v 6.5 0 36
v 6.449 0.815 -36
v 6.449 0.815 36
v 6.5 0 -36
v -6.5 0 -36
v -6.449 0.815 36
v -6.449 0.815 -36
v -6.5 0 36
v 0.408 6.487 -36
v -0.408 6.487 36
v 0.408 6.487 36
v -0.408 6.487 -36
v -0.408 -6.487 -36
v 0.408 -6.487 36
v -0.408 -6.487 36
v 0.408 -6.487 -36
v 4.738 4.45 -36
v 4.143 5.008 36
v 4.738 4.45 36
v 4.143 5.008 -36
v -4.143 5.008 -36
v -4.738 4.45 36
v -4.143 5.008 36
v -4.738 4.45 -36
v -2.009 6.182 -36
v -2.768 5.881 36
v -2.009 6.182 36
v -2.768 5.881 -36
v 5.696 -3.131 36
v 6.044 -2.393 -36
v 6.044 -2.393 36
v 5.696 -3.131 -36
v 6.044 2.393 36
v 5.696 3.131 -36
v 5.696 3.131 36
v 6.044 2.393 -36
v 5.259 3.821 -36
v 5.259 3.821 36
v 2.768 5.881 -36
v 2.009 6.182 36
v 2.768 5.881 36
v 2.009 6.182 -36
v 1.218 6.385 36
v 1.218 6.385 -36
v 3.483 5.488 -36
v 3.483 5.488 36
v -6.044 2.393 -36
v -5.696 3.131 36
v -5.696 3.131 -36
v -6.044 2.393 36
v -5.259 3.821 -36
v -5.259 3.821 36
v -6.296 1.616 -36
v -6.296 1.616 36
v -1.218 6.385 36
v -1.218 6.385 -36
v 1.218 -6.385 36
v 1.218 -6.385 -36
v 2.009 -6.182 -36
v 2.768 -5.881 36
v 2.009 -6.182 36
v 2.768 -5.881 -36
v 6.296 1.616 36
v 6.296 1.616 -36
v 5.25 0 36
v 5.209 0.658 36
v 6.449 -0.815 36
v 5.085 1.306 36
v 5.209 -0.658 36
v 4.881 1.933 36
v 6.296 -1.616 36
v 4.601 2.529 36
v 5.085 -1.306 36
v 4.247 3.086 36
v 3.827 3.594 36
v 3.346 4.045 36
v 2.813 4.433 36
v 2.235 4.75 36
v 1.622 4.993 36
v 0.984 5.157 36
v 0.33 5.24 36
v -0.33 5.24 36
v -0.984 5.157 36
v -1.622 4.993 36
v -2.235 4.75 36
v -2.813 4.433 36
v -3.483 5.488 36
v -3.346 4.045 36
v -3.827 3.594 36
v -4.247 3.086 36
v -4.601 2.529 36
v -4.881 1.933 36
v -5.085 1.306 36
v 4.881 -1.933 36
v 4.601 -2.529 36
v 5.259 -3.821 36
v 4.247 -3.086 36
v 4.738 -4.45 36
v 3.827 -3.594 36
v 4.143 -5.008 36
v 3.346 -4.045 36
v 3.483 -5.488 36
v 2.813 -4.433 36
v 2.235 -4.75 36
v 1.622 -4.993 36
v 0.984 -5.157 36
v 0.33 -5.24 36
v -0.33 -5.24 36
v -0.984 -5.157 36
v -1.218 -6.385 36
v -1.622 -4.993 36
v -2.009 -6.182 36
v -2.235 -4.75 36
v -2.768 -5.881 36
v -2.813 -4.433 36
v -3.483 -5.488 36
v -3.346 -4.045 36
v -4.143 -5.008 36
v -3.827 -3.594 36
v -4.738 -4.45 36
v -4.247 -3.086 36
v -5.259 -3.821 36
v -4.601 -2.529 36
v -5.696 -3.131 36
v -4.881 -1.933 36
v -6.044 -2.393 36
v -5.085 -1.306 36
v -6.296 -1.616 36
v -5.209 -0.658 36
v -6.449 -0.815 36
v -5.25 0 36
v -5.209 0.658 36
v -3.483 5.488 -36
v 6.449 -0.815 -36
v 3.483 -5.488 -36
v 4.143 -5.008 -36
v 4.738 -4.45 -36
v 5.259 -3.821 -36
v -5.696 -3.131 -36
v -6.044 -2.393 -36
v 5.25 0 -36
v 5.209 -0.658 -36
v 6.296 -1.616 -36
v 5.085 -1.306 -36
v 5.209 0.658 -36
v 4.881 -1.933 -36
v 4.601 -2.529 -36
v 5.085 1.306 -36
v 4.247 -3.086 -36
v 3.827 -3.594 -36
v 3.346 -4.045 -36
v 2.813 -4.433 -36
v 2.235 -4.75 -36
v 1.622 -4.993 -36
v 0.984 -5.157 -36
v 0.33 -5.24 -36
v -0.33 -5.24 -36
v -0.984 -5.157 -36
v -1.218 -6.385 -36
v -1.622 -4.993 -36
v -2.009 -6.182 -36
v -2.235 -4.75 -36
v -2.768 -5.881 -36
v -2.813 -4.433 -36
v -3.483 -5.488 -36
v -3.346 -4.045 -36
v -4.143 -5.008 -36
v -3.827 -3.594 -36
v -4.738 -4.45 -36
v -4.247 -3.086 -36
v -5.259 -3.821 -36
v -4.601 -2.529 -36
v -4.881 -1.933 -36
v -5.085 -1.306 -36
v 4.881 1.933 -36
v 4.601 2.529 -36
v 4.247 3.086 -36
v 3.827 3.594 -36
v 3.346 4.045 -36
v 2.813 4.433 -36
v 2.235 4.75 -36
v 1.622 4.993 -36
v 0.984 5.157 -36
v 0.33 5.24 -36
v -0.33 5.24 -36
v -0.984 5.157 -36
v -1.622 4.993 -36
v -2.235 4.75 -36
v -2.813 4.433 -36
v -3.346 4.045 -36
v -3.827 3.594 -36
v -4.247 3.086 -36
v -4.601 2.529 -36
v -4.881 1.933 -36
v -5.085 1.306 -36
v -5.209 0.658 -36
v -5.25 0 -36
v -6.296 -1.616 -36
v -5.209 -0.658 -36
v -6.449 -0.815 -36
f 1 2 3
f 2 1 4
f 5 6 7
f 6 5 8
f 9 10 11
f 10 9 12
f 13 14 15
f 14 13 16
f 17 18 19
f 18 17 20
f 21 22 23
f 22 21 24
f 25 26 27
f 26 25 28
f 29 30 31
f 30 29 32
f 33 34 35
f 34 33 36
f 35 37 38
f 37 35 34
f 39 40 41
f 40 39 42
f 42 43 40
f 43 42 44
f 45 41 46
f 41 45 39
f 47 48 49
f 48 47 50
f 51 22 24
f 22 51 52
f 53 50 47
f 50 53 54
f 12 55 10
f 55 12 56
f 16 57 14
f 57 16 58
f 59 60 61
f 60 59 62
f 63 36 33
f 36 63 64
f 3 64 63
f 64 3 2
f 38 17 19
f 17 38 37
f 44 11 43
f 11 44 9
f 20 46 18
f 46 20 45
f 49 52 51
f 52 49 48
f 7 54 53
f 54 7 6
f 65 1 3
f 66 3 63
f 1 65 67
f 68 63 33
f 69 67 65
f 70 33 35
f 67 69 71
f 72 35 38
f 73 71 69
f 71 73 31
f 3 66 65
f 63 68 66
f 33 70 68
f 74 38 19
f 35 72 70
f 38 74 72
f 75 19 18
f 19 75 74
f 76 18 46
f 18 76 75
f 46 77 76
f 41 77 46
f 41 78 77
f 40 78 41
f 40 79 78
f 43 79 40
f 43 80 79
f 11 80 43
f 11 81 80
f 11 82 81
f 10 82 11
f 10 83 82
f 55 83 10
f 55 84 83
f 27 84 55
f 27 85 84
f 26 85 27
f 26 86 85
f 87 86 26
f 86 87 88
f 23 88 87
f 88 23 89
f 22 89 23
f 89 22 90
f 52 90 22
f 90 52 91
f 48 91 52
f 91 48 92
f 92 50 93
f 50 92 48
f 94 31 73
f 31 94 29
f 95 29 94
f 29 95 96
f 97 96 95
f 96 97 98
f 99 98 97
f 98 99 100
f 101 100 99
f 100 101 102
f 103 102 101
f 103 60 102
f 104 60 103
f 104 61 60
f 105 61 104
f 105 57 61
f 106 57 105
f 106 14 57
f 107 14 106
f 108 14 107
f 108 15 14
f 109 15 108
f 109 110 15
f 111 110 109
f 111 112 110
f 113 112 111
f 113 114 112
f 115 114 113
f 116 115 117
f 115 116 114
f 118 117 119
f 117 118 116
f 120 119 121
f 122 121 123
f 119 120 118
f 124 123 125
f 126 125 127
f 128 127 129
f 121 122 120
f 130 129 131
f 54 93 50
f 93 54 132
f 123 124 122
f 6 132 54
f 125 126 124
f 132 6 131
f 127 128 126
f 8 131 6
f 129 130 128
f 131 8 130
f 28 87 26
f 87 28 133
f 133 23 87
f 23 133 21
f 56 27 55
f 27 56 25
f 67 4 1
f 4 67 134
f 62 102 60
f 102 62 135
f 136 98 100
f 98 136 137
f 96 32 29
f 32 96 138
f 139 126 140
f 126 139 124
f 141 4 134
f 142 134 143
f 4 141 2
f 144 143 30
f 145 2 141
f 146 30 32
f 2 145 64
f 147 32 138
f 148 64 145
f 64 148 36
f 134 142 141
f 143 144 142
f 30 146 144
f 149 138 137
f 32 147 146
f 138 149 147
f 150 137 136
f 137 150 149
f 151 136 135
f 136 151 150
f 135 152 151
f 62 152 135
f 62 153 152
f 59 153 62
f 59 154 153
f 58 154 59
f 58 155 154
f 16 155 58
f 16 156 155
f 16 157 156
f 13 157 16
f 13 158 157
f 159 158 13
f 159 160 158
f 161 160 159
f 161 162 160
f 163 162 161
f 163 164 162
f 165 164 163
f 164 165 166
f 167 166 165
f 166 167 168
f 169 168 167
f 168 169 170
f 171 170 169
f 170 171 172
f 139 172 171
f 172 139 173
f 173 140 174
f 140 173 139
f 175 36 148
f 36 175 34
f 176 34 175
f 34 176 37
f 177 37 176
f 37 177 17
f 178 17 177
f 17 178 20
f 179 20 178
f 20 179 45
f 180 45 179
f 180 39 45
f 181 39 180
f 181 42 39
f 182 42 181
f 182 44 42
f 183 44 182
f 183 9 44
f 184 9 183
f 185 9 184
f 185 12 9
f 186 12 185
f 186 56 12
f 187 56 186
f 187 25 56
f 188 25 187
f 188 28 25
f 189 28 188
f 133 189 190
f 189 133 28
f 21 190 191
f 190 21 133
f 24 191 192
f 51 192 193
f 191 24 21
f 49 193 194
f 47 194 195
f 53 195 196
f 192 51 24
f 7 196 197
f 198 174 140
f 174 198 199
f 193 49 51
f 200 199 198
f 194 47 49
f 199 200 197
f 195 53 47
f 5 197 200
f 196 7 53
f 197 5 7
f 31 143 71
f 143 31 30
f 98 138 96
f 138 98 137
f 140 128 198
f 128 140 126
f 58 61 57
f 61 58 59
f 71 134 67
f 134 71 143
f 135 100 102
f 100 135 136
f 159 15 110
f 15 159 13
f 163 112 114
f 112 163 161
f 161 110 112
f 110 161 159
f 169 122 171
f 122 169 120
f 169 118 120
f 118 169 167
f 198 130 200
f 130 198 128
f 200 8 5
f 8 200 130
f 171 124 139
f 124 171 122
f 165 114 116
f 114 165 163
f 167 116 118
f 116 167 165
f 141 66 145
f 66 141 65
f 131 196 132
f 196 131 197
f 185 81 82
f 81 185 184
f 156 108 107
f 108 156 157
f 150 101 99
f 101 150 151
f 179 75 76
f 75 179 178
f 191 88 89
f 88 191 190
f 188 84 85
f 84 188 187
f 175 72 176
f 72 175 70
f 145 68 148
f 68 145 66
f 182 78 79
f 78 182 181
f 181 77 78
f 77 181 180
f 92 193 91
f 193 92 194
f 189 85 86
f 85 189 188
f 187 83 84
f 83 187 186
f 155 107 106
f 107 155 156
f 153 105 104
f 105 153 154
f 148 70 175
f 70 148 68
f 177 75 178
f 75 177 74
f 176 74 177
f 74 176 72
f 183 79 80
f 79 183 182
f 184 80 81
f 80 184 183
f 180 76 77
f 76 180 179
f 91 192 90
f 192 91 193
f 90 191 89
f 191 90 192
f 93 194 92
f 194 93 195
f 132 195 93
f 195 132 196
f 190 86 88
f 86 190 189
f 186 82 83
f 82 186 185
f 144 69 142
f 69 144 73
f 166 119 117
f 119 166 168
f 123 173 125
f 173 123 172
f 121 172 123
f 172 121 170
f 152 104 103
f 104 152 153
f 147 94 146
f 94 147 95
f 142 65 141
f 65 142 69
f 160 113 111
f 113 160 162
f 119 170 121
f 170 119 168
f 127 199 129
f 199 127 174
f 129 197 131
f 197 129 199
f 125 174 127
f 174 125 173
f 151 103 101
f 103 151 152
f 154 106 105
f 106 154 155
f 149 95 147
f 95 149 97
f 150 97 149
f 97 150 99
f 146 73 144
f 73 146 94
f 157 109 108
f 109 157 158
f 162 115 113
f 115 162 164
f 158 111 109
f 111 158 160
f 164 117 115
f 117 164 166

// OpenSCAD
$fn = 50;


difference() {
	union() {
		translate(v = [0, 0, -36.0000000000]) {
			cylinder(h = 72, r = 6.5000000000);
		}
	}
	union() {
		translate(v = [0, 0, -100.0000000000]) {
			cylinder(h = 200, r = 5.2500000000);
		}
	}
}
